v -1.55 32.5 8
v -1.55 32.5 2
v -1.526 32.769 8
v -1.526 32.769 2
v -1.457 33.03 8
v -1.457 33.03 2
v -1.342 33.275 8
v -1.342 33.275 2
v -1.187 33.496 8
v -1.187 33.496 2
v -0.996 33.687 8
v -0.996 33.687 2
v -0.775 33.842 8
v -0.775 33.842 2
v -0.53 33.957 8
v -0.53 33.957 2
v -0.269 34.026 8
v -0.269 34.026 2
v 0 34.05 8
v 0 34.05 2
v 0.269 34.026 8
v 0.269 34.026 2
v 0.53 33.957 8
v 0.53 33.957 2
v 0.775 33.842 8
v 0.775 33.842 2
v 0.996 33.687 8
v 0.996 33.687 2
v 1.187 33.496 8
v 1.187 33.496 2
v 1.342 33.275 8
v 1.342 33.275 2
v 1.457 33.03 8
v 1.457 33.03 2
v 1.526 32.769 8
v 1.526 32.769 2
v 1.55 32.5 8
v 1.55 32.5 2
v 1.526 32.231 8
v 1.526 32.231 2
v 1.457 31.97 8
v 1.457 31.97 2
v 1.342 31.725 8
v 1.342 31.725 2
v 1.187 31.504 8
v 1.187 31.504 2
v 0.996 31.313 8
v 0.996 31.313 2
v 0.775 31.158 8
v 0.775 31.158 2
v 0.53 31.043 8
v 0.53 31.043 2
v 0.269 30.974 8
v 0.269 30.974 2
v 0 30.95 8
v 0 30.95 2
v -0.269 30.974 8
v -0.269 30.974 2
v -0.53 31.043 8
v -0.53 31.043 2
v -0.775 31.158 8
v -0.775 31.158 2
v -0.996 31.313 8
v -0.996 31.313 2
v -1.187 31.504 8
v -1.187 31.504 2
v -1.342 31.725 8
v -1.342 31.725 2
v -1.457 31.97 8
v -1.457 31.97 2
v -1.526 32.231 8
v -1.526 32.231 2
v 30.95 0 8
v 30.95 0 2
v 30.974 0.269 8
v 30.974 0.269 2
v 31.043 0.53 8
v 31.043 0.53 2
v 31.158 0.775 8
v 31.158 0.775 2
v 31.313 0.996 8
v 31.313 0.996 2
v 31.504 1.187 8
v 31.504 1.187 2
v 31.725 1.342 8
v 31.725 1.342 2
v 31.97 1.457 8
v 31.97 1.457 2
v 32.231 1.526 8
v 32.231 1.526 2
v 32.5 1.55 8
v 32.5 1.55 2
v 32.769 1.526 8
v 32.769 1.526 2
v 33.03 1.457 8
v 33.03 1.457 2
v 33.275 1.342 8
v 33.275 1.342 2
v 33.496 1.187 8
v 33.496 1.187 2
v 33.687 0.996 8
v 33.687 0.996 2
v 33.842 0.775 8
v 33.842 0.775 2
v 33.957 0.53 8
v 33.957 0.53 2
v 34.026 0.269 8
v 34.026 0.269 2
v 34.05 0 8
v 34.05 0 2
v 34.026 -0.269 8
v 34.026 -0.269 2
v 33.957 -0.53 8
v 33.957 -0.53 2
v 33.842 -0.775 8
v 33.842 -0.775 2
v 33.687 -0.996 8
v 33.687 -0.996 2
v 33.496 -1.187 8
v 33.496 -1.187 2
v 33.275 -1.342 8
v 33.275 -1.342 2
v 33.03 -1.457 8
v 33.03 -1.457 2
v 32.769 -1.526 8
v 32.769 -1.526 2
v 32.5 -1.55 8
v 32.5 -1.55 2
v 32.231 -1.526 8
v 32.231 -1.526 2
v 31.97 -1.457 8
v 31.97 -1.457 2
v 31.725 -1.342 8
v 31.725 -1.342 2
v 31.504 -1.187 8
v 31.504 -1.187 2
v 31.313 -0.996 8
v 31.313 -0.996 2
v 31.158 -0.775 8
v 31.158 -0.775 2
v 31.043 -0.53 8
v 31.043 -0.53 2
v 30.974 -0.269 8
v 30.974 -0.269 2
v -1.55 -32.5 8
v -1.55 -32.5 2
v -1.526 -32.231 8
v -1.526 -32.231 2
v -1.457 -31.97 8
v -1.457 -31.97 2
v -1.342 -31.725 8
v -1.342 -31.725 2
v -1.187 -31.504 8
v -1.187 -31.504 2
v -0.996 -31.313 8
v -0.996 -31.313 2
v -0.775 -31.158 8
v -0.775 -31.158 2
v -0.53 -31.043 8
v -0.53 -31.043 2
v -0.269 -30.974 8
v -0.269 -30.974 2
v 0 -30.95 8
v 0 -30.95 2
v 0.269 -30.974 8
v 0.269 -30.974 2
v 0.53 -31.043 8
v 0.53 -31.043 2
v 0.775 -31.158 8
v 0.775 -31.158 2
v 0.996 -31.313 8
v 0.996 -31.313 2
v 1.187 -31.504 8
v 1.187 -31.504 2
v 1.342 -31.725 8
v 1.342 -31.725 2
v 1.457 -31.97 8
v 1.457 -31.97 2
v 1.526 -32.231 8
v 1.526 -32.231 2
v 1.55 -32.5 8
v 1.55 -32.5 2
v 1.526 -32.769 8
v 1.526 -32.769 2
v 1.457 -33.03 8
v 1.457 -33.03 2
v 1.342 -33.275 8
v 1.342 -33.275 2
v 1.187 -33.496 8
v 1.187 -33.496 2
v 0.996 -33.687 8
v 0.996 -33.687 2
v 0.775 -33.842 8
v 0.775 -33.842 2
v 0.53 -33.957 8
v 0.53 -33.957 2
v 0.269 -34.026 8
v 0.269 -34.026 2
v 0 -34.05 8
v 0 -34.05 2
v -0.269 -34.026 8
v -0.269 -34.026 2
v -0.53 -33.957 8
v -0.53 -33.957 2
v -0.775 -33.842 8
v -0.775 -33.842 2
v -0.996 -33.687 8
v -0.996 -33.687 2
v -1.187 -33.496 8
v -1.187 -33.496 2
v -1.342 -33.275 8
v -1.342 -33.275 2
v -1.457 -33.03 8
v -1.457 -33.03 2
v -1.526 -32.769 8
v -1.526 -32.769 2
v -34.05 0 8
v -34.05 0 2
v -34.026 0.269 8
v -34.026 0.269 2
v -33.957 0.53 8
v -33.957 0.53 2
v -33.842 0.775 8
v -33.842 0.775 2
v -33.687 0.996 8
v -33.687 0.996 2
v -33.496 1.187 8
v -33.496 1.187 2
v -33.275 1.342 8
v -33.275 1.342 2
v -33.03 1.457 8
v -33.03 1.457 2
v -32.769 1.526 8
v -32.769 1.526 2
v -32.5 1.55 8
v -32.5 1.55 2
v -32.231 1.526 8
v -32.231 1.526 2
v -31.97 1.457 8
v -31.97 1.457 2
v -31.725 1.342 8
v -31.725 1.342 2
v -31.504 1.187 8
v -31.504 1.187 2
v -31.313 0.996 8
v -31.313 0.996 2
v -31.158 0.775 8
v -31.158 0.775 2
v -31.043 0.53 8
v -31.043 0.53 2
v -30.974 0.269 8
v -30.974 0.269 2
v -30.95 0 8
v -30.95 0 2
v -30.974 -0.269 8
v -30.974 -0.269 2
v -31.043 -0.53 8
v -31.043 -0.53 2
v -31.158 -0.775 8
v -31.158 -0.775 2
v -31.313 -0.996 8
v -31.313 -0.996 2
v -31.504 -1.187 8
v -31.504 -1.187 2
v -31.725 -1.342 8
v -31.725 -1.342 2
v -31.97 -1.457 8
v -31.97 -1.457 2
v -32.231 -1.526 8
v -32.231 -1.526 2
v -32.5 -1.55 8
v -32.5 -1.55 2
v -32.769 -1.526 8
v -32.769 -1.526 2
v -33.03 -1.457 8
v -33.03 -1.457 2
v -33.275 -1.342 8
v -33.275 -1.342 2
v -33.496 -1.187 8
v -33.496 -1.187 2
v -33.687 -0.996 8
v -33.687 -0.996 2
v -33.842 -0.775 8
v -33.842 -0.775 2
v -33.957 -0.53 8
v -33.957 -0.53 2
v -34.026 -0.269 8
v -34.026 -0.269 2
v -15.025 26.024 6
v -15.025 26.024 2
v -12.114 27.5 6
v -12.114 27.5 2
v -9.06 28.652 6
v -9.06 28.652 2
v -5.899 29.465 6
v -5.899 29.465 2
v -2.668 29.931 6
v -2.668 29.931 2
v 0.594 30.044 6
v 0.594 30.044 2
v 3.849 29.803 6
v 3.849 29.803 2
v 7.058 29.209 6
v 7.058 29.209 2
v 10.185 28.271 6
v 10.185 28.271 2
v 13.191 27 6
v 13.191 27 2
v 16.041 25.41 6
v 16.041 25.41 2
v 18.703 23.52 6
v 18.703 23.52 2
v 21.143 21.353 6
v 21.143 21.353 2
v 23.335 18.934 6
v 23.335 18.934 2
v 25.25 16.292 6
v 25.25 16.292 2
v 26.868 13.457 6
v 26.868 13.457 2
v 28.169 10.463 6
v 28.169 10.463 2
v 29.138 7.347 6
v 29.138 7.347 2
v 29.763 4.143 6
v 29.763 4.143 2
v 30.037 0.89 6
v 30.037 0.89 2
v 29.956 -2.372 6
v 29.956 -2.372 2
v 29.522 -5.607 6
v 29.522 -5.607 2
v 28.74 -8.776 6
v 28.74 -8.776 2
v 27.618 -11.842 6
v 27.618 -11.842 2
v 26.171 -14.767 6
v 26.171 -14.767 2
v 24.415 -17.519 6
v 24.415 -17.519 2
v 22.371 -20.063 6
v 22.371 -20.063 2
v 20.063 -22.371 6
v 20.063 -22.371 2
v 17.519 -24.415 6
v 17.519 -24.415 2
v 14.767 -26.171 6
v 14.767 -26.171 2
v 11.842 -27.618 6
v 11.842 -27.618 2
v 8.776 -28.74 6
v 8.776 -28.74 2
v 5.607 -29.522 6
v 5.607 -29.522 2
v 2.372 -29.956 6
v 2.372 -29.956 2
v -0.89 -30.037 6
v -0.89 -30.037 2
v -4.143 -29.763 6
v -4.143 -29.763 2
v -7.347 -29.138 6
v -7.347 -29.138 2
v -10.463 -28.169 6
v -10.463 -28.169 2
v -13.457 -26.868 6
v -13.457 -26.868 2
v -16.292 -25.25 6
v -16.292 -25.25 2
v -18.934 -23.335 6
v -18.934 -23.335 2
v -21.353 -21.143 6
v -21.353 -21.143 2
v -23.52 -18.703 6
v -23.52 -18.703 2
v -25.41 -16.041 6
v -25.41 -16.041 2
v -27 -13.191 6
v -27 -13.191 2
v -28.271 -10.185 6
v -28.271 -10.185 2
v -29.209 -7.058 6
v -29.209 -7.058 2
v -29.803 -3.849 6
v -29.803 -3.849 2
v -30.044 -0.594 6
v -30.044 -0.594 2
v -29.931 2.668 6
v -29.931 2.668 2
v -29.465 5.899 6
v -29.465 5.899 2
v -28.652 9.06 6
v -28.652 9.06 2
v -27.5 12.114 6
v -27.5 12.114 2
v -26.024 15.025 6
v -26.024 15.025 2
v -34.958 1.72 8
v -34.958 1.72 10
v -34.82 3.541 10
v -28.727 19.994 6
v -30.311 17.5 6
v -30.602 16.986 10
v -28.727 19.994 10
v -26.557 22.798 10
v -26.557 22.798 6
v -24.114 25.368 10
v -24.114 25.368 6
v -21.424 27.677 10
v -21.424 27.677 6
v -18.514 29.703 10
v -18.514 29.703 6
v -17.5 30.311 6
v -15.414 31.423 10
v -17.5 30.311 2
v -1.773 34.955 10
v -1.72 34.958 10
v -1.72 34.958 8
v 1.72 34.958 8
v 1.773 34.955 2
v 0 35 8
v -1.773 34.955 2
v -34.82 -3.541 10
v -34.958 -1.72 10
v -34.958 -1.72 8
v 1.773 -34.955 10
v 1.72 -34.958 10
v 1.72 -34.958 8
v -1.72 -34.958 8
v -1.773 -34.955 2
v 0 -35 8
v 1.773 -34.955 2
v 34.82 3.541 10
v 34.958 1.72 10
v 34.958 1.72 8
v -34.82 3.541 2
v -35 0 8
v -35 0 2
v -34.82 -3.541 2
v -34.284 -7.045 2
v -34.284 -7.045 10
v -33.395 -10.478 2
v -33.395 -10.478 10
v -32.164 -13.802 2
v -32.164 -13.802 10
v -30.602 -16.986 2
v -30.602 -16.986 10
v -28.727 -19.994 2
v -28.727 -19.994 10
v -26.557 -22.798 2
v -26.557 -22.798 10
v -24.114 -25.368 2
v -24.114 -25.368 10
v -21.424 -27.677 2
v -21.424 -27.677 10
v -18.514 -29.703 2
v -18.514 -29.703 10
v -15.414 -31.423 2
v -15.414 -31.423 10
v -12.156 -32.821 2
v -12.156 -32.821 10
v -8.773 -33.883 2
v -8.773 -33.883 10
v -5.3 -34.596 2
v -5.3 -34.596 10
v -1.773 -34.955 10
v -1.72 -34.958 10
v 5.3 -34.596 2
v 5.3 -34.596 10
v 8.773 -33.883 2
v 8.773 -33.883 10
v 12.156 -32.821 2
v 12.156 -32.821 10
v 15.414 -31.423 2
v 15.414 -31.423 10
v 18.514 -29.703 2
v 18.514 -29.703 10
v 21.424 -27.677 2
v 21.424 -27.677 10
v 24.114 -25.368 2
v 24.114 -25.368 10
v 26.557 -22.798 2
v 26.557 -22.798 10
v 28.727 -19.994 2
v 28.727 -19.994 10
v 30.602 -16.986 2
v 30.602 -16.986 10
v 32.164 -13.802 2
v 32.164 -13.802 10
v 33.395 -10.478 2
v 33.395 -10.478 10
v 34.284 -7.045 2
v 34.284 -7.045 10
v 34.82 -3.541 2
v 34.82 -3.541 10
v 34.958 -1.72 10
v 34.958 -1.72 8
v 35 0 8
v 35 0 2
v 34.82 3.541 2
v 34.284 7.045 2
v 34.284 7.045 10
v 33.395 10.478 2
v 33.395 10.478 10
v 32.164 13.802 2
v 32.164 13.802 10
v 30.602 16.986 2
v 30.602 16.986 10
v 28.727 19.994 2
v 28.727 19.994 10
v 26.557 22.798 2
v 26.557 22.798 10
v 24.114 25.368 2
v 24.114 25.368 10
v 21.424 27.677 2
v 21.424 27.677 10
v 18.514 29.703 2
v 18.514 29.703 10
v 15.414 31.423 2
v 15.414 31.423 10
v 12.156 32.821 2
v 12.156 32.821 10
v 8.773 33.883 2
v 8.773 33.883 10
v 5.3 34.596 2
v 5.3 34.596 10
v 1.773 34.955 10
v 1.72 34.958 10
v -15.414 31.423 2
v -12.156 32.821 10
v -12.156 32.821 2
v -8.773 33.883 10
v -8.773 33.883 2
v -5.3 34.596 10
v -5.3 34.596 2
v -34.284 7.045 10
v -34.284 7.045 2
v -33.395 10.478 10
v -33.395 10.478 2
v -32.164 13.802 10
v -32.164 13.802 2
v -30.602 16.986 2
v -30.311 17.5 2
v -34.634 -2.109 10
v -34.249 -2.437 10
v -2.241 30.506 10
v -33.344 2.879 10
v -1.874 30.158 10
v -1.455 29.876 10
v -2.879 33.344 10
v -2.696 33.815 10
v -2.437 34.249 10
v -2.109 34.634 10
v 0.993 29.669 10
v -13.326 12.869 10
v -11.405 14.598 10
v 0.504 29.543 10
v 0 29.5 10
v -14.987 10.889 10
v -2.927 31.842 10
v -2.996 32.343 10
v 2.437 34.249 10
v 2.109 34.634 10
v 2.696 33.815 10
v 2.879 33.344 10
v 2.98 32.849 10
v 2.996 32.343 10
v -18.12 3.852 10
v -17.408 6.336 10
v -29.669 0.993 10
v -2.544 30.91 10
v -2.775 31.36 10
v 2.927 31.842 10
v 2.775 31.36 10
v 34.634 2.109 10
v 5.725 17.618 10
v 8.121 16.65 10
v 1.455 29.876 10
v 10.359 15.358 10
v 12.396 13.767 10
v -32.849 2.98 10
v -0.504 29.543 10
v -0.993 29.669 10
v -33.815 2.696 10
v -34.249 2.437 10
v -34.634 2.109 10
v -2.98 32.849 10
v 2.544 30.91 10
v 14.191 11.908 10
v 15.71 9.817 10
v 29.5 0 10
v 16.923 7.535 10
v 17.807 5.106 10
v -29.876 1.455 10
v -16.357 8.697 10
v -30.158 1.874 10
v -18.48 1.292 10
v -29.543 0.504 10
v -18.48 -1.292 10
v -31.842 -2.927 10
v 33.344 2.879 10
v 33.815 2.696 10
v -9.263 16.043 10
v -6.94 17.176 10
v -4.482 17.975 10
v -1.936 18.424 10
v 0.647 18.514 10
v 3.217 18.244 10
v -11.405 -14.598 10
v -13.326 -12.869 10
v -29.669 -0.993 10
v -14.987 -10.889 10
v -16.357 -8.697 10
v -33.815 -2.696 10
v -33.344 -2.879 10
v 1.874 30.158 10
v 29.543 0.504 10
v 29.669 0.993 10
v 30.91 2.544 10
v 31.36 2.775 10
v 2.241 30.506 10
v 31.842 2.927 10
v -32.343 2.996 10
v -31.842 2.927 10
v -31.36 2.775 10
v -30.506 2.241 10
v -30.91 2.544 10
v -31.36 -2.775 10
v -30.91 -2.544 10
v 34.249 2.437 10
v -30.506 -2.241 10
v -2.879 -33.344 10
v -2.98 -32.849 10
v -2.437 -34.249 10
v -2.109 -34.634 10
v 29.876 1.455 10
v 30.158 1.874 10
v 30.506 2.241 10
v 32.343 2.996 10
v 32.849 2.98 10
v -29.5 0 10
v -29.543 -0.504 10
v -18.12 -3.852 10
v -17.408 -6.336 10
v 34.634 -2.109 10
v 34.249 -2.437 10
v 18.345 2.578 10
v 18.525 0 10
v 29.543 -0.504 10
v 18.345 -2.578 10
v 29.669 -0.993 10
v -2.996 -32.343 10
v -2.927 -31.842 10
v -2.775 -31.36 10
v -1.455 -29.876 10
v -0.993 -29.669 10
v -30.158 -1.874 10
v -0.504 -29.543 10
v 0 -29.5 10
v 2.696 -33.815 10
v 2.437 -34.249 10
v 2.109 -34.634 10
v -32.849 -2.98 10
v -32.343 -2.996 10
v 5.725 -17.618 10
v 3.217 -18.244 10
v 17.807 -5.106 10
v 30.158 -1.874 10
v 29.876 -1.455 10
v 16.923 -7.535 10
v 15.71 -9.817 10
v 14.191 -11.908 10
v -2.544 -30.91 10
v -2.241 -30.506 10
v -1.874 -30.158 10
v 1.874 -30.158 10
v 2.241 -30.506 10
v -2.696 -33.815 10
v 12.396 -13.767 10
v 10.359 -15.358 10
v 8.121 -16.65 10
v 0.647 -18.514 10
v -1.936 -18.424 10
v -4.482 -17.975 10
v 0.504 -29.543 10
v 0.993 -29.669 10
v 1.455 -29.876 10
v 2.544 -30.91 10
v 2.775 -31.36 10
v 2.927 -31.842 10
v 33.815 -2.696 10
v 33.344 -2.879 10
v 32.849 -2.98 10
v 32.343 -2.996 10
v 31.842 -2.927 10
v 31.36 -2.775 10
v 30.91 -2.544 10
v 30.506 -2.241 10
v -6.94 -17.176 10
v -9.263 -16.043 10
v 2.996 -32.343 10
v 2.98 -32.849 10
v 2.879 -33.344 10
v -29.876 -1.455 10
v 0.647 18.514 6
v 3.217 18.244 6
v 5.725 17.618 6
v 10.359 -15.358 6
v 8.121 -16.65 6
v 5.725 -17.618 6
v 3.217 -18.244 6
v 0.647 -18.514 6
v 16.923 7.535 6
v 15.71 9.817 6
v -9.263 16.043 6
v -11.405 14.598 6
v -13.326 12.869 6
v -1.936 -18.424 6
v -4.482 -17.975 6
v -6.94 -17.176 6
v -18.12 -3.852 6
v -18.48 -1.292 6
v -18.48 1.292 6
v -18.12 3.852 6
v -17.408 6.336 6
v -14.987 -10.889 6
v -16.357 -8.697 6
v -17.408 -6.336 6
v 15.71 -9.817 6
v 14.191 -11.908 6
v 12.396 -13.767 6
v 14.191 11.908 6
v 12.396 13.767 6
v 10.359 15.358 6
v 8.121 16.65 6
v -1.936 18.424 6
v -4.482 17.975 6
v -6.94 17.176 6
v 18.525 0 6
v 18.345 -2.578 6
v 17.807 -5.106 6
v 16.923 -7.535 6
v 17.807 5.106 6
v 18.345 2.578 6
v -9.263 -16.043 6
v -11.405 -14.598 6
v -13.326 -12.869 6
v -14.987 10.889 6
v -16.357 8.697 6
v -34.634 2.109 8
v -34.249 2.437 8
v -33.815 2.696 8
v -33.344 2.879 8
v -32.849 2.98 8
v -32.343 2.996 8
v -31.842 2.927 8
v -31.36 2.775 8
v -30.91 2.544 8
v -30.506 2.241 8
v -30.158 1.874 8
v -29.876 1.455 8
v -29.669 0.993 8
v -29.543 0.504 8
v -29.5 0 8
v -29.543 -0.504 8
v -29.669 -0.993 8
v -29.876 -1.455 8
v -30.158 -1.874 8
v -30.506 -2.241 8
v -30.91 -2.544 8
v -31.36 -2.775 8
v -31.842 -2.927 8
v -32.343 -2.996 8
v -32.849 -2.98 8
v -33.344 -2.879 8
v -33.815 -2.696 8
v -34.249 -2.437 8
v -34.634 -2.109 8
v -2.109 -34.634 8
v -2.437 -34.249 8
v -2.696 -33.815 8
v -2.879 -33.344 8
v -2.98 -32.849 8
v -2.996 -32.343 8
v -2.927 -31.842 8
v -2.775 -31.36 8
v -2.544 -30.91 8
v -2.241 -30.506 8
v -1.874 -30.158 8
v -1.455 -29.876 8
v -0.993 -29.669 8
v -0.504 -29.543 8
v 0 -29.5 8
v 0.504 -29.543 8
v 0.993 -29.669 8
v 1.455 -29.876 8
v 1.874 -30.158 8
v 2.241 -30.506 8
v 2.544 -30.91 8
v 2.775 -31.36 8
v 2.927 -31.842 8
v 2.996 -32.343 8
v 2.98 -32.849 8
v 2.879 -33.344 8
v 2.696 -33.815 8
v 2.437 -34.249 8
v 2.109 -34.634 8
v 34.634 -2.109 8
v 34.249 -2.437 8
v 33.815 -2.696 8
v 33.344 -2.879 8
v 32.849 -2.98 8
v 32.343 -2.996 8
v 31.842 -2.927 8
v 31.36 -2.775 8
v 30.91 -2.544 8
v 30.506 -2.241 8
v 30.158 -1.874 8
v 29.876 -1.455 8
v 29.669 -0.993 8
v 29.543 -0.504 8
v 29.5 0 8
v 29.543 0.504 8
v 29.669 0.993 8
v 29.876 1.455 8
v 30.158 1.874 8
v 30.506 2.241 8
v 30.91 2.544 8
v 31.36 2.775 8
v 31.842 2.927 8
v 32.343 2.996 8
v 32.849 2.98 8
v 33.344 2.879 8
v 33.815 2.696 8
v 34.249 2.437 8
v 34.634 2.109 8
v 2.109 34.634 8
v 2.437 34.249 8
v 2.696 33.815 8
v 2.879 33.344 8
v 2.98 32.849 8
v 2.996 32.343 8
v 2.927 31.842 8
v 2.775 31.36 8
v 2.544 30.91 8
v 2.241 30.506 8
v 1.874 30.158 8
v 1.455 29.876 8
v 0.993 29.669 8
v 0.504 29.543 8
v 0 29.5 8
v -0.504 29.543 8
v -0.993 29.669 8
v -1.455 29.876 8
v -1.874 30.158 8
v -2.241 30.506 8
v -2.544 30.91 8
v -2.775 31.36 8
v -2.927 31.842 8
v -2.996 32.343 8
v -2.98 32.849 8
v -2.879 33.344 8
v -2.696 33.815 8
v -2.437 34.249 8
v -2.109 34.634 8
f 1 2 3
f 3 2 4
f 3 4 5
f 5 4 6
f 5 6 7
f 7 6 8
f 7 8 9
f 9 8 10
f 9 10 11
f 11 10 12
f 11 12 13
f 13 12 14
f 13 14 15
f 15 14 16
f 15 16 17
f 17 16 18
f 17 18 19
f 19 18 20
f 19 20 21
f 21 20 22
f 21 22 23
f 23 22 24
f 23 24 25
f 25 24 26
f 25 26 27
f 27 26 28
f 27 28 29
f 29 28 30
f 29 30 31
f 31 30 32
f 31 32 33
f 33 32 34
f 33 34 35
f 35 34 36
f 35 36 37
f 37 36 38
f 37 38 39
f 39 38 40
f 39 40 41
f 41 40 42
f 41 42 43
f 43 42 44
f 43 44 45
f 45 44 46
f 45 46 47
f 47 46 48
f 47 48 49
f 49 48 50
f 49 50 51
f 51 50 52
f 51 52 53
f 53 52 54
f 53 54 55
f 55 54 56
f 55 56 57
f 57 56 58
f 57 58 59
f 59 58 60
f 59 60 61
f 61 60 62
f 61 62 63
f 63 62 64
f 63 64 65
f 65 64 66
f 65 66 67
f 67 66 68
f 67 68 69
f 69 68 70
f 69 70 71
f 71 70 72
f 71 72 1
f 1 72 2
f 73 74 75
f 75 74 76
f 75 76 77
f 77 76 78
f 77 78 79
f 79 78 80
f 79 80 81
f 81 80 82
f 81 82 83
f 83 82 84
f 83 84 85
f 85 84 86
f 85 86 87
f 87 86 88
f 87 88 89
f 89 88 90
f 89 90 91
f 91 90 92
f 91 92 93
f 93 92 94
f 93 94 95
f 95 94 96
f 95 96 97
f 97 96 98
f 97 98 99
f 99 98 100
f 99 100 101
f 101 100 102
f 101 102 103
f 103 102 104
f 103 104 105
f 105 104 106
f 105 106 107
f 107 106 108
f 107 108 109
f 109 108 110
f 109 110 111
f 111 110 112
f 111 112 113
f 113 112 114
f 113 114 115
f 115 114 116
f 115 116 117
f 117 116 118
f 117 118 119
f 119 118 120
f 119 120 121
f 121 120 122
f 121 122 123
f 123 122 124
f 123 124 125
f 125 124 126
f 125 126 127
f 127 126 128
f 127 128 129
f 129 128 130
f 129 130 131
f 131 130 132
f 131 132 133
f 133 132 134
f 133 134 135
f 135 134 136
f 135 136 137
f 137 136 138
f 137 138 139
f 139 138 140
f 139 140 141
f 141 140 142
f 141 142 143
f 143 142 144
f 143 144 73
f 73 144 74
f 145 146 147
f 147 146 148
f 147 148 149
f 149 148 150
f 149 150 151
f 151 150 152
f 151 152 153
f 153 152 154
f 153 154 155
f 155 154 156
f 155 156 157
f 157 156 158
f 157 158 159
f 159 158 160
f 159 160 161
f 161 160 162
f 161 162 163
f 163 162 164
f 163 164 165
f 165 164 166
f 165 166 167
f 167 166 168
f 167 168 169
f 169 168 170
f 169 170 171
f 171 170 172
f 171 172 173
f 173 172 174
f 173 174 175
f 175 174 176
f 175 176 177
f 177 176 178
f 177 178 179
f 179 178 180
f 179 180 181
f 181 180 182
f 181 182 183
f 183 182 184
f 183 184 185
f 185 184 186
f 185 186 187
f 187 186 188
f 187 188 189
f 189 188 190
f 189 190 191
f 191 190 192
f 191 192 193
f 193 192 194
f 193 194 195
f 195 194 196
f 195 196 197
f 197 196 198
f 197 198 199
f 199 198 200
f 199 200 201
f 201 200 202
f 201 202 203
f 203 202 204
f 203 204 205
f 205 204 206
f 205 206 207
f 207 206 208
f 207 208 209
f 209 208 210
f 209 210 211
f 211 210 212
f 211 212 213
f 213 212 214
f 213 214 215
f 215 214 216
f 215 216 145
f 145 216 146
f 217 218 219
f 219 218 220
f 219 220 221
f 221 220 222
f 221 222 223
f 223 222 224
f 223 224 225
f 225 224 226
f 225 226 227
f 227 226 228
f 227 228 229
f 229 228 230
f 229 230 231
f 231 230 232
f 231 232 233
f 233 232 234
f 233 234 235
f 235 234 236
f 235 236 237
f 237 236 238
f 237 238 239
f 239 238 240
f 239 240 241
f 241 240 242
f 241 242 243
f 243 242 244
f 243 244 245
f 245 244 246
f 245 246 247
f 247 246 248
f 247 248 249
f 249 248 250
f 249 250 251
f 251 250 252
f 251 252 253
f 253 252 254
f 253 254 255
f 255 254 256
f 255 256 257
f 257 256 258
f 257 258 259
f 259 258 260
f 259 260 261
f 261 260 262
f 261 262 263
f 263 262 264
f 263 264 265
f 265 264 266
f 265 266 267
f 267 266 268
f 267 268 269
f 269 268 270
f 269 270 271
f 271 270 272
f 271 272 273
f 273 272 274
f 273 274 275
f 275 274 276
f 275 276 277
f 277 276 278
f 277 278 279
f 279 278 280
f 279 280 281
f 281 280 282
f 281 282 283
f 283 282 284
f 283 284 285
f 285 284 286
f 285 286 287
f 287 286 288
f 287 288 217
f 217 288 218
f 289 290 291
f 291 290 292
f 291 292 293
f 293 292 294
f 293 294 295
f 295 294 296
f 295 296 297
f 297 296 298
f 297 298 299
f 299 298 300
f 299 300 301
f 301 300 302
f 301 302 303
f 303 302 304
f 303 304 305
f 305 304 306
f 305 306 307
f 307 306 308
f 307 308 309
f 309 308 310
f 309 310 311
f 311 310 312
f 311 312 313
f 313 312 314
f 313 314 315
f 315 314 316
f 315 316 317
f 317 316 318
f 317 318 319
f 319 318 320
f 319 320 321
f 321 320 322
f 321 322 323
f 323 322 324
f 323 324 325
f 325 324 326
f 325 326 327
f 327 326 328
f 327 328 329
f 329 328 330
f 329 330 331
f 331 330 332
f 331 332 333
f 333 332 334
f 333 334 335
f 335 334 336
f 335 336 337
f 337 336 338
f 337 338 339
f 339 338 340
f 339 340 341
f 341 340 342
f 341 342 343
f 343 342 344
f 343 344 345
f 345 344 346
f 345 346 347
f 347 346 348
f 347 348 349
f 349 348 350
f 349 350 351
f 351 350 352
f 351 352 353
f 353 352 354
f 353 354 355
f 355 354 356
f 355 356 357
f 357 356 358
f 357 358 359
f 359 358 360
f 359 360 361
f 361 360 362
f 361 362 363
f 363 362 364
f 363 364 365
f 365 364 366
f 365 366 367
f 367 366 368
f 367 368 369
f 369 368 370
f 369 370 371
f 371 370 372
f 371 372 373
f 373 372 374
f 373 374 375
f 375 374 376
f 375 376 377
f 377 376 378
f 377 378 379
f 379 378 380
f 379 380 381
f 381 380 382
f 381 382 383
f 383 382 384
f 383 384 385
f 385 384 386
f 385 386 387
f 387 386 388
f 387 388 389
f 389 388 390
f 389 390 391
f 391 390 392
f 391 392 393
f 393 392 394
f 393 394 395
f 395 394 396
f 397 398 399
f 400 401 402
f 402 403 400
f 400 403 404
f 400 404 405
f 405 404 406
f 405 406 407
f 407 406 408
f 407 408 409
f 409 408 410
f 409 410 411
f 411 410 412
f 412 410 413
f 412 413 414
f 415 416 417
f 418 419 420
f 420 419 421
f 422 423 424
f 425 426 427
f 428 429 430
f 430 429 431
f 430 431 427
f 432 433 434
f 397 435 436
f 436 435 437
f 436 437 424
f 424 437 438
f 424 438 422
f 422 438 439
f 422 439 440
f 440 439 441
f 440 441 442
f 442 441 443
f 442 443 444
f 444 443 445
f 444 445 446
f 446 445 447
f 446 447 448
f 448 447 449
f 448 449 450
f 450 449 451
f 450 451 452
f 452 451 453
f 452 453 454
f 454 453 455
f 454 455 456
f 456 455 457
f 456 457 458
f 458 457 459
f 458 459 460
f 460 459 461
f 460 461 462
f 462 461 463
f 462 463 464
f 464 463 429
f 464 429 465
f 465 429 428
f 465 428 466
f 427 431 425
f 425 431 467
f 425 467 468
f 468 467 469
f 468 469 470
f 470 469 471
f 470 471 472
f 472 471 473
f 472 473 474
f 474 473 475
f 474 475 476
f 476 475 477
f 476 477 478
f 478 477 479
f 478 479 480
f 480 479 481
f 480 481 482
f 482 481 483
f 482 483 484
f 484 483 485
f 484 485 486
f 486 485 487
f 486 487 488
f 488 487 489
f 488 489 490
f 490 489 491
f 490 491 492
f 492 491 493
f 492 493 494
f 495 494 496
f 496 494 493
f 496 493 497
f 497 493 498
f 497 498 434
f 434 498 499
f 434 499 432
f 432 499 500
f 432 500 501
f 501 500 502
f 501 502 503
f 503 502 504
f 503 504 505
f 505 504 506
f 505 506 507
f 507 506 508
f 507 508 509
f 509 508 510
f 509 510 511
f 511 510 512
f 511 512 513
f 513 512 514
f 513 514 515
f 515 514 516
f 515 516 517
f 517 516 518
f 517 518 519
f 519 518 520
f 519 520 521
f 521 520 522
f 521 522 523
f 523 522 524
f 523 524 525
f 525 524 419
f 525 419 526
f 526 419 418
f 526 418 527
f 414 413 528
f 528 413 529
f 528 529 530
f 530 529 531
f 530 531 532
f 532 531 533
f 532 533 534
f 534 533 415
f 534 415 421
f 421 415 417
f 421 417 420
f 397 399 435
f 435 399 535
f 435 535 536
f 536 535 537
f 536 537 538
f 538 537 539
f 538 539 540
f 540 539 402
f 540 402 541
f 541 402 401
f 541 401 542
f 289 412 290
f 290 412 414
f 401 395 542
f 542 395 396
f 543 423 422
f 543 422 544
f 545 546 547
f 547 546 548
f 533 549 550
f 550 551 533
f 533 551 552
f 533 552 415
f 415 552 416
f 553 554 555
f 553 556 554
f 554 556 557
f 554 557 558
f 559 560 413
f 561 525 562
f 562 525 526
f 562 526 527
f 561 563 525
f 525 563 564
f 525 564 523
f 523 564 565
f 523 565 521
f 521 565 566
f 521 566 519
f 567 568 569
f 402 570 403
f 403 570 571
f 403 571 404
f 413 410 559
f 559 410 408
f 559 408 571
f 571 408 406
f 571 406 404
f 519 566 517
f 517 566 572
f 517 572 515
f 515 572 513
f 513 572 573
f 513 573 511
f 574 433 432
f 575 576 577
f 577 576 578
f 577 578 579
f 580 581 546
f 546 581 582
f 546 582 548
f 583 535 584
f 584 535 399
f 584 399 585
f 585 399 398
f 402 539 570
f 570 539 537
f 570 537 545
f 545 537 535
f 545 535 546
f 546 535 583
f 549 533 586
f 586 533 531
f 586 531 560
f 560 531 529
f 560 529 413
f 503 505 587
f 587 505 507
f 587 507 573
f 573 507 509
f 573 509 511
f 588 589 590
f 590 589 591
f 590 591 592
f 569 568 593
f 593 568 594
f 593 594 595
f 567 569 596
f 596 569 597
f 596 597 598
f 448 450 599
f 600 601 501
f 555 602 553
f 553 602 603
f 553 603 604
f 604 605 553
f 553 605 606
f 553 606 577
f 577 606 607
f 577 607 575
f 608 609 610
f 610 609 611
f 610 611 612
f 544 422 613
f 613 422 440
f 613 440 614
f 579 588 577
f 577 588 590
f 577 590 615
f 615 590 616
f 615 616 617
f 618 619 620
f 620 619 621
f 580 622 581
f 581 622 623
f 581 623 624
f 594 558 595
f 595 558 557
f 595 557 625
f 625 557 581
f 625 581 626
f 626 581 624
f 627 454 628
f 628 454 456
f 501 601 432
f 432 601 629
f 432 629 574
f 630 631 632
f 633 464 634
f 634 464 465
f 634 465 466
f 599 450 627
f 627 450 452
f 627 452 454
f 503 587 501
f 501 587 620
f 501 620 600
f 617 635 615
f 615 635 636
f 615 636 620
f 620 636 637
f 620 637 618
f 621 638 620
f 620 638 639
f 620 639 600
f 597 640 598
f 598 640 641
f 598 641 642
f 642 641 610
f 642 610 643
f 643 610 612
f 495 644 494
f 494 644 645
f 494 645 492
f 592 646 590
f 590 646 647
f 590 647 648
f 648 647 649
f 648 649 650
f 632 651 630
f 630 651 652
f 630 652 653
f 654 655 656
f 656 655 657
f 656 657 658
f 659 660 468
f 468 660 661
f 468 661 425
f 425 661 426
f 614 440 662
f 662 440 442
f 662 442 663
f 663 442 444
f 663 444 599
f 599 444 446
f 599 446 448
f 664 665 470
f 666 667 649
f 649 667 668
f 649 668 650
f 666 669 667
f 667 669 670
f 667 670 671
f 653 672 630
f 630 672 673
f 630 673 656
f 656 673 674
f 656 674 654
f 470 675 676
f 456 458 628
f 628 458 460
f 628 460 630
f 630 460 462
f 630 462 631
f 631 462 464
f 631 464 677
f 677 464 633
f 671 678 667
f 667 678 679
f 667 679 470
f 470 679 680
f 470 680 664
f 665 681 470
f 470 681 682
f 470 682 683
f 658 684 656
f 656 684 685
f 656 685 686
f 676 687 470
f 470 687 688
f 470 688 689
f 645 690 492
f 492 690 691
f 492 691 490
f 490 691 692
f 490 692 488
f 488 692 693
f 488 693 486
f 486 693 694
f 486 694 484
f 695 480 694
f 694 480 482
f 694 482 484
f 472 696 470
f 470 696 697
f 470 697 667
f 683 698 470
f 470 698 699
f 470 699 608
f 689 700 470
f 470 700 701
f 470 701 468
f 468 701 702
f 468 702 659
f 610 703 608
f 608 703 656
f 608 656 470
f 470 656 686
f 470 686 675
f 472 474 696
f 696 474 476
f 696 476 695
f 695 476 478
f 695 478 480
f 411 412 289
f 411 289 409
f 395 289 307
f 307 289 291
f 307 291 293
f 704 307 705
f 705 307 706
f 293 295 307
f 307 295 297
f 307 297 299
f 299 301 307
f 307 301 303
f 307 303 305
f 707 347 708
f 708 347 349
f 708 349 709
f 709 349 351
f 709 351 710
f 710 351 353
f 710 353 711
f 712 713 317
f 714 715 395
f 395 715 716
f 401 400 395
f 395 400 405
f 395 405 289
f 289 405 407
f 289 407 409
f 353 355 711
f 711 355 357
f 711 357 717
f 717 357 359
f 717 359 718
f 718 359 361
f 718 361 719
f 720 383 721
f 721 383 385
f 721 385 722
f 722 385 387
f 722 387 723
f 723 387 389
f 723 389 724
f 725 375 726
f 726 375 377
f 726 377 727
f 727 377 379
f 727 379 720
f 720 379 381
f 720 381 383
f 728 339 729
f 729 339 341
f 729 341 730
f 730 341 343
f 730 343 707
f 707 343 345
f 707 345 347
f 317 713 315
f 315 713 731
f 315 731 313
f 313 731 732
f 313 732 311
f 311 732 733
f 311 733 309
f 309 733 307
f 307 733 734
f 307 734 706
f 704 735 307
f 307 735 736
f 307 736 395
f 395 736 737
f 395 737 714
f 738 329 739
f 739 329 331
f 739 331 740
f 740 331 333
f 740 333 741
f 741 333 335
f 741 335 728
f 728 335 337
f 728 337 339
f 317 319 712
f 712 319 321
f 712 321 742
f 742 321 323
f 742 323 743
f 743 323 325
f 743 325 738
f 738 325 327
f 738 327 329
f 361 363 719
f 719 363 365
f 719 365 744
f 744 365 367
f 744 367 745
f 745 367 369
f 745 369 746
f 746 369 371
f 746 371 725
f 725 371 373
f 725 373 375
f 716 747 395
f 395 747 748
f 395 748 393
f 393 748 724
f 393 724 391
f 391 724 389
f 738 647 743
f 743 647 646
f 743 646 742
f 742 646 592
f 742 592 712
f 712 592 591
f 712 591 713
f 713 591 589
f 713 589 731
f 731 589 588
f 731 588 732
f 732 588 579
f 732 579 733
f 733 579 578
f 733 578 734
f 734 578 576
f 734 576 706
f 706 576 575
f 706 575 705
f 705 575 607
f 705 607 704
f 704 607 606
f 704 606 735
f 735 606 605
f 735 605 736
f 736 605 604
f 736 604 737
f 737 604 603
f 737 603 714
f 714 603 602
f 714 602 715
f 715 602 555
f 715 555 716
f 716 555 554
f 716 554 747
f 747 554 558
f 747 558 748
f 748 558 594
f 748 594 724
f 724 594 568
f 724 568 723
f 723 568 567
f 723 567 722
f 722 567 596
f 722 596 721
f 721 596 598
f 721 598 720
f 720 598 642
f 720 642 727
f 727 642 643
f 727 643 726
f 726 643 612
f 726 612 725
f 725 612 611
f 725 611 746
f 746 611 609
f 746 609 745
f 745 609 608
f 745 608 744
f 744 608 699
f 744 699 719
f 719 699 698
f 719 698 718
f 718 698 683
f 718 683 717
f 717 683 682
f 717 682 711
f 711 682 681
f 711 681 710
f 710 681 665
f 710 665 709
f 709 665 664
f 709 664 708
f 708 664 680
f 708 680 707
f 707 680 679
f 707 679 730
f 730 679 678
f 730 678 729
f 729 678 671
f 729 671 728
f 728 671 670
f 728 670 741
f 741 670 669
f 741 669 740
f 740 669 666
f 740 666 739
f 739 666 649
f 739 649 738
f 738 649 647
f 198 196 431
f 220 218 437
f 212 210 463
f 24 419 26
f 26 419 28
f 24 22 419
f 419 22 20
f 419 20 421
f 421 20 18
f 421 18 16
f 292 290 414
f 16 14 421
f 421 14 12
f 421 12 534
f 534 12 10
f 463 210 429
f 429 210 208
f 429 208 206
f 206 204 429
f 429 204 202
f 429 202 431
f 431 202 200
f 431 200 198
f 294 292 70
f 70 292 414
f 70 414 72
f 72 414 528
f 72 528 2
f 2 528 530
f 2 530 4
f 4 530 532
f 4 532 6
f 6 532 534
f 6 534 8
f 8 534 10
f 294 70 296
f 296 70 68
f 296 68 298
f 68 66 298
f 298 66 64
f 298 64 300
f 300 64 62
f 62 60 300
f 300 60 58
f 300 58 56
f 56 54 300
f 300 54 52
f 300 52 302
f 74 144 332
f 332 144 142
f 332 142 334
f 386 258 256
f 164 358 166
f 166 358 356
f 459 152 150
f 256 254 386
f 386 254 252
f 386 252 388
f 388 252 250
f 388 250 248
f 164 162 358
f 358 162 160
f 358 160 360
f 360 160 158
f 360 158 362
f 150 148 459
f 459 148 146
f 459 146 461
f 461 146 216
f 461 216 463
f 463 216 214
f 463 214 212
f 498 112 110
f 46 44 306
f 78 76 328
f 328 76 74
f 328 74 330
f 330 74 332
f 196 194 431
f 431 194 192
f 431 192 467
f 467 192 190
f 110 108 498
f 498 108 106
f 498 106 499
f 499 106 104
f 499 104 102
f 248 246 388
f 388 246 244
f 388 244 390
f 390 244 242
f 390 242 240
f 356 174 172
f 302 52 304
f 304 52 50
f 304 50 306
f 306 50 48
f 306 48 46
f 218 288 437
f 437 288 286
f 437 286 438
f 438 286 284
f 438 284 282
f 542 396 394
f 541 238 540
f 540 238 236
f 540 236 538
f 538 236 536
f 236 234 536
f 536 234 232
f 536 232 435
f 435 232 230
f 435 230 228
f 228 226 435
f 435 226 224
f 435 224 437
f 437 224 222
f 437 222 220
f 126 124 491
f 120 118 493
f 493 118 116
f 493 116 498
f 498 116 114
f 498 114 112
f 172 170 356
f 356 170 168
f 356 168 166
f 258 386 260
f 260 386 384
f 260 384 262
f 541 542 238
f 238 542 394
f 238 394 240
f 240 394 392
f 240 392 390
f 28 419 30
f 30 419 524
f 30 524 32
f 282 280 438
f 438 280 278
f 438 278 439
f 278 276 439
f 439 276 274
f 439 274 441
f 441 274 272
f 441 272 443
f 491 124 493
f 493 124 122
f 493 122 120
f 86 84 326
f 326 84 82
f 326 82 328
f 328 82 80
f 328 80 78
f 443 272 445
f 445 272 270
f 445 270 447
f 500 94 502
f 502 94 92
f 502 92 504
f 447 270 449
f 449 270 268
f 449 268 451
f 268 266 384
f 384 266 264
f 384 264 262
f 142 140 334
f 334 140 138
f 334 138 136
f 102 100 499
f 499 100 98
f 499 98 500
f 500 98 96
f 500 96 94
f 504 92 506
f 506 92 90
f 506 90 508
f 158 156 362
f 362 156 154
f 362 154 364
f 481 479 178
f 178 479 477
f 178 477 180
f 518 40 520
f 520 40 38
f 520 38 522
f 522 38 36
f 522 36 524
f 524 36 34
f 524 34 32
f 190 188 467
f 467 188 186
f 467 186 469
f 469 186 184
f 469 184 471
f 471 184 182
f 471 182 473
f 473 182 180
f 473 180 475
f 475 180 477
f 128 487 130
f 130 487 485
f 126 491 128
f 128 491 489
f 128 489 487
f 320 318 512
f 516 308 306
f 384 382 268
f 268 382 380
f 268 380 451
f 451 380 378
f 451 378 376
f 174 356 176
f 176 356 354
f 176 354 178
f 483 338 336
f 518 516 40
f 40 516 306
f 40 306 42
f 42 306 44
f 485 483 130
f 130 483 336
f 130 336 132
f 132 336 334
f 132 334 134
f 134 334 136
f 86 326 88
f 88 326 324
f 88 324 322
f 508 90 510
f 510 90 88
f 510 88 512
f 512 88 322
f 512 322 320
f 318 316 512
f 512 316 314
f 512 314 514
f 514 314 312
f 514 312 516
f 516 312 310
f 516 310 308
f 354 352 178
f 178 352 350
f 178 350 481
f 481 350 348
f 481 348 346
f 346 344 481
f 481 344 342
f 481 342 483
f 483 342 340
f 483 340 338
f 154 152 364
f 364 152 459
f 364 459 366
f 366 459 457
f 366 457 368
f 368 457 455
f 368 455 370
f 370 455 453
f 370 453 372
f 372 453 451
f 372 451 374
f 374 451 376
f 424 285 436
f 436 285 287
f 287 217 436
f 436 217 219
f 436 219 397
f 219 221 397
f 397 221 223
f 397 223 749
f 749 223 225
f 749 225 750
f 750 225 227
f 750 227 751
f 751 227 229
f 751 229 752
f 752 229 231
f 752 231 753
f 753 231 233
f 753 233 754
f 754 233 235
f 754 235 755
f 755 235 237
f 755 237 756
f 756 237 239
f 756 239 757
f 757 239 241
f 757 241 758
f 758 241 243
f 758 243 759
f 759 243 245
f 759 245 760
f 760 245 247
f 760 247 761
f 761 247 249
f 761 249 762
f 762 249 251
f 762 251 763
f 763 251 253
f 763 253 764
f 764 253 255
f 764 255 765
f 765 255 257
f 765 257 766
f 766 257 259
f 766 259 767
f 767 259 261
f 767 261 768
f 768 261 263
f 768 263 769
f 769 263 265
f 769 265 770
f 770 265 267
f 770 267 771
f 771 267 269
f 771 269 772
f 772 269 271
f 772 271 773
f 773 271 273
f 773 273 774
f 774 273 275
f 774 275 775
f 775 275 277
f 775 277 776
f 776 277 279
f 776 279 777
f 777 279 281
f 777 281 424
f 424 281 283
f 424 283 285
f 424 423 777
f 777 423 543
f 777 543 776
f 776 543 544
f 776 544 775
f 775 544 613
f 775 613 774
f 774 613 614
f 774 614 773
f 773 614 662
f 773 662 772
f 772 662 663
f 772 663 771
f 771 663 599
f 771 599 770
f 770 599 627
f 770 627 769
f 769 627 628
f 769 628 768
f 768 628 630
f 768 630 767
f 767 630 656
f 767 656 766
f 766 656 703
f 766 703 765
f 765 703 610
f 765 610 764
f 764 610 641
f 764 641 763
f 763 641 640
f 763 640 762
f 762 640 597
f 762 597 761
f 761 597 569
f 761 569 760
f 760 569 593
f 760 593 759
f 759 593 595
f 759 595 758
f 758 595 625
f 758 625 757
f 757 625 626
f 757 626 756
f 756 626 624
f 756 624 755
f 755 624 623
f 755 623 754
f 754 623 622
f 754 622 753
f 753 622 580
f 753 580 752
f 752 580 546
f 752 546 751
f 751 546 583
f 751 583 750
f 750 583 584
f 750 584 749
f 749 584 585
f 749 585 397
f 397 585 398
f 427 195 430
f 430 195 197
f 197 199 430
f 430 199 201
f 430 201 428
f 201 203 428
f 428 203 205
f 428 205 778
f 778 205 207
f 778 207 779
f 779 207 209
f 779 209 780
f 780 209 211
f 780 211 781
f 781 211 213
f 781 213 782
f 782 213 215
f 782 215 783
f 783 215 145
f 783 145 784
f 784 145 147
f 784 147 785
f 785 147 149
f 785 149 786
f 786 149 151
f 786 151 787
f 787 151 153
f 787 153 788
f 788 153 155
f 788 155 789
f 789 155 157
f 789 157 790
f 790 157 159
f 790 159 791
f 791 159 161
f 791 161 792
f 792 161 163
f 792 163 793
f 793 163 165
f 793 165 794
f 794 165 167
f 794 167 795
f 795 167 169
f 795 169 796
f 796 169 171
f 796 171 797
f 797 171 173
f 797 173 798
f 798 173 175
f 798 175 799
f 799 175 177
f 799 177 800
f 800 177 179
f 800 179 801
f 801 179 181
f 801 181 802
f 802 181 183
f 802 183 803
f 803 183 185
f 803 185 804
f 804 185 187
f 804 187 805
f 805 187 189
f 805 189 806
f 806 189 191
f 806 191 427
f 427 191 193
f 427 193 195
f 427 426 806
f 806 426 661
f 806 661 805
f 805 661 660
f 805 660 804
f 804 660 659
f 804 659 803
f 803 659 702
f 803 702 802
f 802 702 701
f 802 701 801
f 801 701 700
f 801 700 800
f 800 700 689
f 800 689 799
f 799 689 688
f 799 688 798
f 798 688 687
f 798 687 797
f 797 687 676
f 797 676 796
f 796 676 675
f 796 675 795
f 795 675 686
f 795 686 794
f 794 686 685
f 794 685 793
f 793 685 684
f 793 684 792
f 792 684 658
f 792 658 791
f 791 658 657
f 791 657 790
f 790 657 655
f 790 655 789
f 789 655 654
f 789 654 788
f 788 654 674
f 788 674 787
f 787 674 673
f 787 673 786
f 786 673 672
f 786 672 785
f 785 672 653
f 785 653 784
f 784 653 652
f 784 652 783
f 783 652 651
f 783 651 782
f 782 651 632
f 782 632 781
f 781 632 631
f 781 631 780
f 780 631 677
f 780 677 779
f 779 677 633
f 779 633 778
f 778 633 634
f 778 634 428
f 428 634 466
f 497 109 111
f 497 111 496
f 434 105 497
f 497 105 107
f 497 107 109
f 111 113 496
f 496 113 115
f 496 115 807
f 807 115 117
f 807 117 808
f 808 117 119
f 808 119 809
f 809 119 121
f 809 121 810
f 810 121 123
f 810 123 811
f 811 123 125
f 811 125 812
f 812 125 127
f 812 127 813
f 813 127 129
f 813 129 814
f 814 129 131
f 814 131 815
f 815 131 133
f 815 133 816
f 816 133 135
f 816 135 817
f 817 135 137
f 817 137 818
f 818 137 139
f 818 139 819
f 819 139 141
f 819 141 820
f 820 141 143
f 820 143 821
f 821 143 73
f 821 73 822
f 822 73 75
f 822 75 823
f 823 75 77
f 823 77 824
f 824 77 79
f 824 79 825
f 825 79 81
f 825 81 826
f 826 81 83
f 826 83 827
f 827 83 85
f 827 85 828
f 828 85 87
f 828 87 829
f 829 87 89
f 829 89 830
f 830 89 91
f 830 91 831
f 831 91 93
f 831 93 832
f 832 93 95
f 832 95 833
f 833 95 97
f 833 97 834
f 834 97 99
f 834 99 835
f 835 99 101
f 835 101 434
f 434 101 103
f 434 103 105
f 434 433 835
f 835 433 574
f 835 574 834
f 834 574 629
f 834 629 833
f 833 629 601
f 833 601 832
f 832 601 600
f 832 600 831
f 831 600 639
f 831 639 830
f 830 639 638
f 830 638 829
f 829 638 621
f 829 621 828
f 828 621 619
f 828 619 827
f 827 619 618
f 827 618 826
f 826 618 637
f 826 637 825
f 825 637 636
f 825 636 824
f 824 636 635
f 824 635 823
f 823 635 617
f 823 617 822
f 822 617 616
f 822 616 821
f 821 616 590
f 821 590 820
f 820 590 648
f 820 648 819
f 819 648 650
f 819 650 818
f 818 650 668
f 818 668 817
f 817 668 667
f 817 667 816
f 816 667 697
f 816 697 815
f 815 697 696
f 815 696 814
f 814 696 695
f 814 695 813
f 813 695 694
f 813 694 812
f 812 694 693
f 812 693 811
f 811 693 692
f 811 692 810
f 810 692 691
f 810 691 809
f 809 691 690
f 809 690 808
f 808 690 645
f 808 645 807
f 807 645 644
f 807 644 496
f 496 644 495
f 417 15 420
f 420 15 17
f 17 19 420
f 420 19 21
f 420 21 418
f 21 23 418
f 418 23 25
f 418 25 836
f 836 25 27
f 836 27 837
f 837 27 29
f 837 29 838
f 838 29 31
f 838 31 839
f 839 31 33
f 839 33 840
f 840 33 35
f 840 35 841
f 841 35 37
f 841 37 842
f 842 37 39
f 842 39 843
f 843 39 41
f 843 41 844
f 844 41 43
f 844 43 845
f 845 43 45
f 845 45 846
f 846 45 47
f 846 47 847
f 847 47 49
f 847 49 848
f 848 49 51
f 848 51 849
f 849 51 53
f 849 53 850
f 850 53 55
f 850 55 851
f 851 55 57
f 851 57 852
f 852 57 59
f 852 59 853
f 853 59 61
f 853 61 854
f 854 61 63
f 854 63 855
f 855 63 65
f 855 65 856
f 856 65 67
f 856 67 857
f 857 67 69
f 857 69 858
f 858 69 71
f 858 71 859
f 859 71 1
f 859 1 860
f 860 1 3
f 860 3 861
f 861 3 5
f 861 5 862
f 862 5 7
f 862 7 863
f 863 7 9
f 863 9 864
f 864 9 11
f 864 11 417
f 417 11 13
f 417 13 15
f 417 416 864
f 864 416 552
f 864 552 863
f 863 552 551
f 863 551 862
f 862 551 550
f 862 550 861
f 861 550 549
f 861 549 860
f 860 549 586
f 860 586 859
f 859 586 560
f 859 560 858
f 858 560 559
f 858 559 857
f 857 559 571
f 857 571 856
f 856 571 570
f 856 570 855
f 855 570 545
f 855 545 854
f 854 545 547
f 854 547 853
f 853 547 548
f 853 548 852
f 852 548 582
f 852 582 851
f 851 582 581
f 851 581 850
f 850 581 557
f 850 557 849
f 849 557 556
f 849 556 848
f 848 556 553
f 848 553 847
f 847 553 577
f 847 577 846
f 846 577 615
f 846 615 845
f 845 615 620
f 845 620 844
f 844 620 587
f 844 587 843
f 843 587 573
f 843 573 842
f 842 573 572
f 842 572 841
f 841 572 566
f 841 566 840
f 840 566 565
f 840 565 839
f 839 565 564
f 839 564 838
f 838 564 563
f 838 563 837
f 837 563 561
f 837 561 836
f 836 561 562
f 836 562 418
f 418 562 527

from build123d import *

# Parameters (mm, degrees)
EXTRUDE_1_OUTLINE_R   = 35
EXTRUDE_1_OUTLINE_R_2 = 1.55
EXTRUDE_1_OUTLINE_R_3 = 30.05
EXTRUDE_1_DEPTH       = 10
SKETCH_2_R            = 33.525
SKETCH_2_R_2          = 18.525
EXTRUDE_1_2_DEPTH     = 4
SKETCH_3_R            = 1.55
CUT_EXTRUDE_1_DEPTH   = 51.497524692
CUT_EXTRUDE_2_DEPTH   = 6
SKETCH_8_R            = 35
SKETCH_8_R_2          = 30.05
CUT_EXTRUDE_3_DEPTH   = 2
SKETCH_9_R            = 3
CUT_EXTRUDE_4_DEPTH   = 2


# Read off the part's stored shape, not the designer's step: 凸台-拉伸1
with BuildPart() as part:
    # Extrude 1 outline → Extrude 1 (new body)
    with BuildSketch(Plane.XY):
        Circle(EXTRUDE_1_OUTLINE_R)
        with Locations((0, -32.5)):
            Circle(EXTRUDE_1_OUTLINE_R_2, mode=Mode.SUBTRACT)
        with Locations((-32.5, 0)):
            Circle(EXTRUDE_1_OUTLINE_R_2, mode=Mode.SUBTRACT)
        Circle(EXTRUDE_1_OUTLINE_R_3, mode=Mode.SUBTRACT)
        with Locations((32.5, 0)):
            Circle(EXTRUDE_1_OUTLINE_R_2, mode=Mode.SUBTRACT)
        with Locations((0, 32.5)):
            Circle(EXTRUDE_1_OUTLINE_R_2, mode=Mode.SUBTRACT)
    extrude(amount=EXTRUDE_1_DEPTH)

    # 草图2 → Extrude 1 2 (add)
    with BuildSketch(Plane.XY.offset(10)):
        Circle(SKETCH_2_R)
        Circle(SKETCH_2_R_2, mode=Mode.SUBTRACT)
    extrude(amount=-EXTRUDE_1_2_DEPTH)

    # 草图3 → 切除-拉伸1 (cut, through all)
    with BuildSketch(Plane(origin=(0, 0, 0), x_dir=(-1, 0, 0), z_dir=(0, 0, -1))):
        with Locations(Location((32.5, 0, 0), (0, 0, 180))):
            Circle(SKETCH_3_R)
        with Locations(Location((0, -32.5, 0), (0, 0, 180))):
            Circle(SKETCH_3_R)
        with Locations(Location((-32.5, 0, 0), (0, 0, 180))):
            Circle(SKETCH_3_R)
        with Locations(Location((0, 32.5, 0), (0, 0, 180))):
            Circle(SKETCH_3_R)
    extrude(amount=-CUT_EXTRUDE_1_DEPTH, mode=Mode.SUBTRACT)

    # 草图7 → 切除-拉伸2 (cut)
    with BuildSketch(Plane(origin=(0, 0, 0), x_dir=(-1, 0, 0), z_dir=(0, 0, -1))):
        with BuildLine():
            Line((15.025, 26.024063384), (17.5, 30.310889132))
            ThreePointArc((17.5, 30.310889132), (24.748737342, 24.748737342), (30.310889132, 17.5))
            Line((30.310889132, 17.5), (26.024063384, 15.025))
            ThreePointArc((26.024063384, 15.025), (21.248558775, 21.248558775), (15.025, 26.024063384))
        make_face()
    extrude(amount=-CUT_EXTRUDE_2_DEPTH, mode=Mode.SUBTRACT)

    # 草图8 → 切除-拉伸3 (cut)
    with BuildSketch(Plane(origin=(0, 0, 0), x_dir=(-1, 0, 0), z_dir=(0, 0, -1))):
        with Locations(Location((0, 0, 0), (0, 0, 30))):
            Circle(SKETCH_8_R)
        Circle(SKETCH_8_R_2, mode=Mode.SUBTRACT)
    extrude(amount=-CUT_EXTRUDE_3_DEPTH, mode=Mode.SUBTRACT)

    # 草图9 → 切除-拉伸4 (cut)
    with BuildSketch(Plane.XY.offset(10)):
        with Locations((0, 32.5)):
            Circle(SKETCH_9_R)
        with Locations((32.5, 0)):
            Circle(SKETCH_9_R)
        with Locations((0, -32.5)):
            Circle(SKETCH_9_R)
        with Locations((-32.5, 0)):
            Circle(SKETCH_9_R)
    extrude(amount=-CUT_EXTRUDE_4_DEPTH, mode=Mode.SUBTRACT)


solid = part.part
